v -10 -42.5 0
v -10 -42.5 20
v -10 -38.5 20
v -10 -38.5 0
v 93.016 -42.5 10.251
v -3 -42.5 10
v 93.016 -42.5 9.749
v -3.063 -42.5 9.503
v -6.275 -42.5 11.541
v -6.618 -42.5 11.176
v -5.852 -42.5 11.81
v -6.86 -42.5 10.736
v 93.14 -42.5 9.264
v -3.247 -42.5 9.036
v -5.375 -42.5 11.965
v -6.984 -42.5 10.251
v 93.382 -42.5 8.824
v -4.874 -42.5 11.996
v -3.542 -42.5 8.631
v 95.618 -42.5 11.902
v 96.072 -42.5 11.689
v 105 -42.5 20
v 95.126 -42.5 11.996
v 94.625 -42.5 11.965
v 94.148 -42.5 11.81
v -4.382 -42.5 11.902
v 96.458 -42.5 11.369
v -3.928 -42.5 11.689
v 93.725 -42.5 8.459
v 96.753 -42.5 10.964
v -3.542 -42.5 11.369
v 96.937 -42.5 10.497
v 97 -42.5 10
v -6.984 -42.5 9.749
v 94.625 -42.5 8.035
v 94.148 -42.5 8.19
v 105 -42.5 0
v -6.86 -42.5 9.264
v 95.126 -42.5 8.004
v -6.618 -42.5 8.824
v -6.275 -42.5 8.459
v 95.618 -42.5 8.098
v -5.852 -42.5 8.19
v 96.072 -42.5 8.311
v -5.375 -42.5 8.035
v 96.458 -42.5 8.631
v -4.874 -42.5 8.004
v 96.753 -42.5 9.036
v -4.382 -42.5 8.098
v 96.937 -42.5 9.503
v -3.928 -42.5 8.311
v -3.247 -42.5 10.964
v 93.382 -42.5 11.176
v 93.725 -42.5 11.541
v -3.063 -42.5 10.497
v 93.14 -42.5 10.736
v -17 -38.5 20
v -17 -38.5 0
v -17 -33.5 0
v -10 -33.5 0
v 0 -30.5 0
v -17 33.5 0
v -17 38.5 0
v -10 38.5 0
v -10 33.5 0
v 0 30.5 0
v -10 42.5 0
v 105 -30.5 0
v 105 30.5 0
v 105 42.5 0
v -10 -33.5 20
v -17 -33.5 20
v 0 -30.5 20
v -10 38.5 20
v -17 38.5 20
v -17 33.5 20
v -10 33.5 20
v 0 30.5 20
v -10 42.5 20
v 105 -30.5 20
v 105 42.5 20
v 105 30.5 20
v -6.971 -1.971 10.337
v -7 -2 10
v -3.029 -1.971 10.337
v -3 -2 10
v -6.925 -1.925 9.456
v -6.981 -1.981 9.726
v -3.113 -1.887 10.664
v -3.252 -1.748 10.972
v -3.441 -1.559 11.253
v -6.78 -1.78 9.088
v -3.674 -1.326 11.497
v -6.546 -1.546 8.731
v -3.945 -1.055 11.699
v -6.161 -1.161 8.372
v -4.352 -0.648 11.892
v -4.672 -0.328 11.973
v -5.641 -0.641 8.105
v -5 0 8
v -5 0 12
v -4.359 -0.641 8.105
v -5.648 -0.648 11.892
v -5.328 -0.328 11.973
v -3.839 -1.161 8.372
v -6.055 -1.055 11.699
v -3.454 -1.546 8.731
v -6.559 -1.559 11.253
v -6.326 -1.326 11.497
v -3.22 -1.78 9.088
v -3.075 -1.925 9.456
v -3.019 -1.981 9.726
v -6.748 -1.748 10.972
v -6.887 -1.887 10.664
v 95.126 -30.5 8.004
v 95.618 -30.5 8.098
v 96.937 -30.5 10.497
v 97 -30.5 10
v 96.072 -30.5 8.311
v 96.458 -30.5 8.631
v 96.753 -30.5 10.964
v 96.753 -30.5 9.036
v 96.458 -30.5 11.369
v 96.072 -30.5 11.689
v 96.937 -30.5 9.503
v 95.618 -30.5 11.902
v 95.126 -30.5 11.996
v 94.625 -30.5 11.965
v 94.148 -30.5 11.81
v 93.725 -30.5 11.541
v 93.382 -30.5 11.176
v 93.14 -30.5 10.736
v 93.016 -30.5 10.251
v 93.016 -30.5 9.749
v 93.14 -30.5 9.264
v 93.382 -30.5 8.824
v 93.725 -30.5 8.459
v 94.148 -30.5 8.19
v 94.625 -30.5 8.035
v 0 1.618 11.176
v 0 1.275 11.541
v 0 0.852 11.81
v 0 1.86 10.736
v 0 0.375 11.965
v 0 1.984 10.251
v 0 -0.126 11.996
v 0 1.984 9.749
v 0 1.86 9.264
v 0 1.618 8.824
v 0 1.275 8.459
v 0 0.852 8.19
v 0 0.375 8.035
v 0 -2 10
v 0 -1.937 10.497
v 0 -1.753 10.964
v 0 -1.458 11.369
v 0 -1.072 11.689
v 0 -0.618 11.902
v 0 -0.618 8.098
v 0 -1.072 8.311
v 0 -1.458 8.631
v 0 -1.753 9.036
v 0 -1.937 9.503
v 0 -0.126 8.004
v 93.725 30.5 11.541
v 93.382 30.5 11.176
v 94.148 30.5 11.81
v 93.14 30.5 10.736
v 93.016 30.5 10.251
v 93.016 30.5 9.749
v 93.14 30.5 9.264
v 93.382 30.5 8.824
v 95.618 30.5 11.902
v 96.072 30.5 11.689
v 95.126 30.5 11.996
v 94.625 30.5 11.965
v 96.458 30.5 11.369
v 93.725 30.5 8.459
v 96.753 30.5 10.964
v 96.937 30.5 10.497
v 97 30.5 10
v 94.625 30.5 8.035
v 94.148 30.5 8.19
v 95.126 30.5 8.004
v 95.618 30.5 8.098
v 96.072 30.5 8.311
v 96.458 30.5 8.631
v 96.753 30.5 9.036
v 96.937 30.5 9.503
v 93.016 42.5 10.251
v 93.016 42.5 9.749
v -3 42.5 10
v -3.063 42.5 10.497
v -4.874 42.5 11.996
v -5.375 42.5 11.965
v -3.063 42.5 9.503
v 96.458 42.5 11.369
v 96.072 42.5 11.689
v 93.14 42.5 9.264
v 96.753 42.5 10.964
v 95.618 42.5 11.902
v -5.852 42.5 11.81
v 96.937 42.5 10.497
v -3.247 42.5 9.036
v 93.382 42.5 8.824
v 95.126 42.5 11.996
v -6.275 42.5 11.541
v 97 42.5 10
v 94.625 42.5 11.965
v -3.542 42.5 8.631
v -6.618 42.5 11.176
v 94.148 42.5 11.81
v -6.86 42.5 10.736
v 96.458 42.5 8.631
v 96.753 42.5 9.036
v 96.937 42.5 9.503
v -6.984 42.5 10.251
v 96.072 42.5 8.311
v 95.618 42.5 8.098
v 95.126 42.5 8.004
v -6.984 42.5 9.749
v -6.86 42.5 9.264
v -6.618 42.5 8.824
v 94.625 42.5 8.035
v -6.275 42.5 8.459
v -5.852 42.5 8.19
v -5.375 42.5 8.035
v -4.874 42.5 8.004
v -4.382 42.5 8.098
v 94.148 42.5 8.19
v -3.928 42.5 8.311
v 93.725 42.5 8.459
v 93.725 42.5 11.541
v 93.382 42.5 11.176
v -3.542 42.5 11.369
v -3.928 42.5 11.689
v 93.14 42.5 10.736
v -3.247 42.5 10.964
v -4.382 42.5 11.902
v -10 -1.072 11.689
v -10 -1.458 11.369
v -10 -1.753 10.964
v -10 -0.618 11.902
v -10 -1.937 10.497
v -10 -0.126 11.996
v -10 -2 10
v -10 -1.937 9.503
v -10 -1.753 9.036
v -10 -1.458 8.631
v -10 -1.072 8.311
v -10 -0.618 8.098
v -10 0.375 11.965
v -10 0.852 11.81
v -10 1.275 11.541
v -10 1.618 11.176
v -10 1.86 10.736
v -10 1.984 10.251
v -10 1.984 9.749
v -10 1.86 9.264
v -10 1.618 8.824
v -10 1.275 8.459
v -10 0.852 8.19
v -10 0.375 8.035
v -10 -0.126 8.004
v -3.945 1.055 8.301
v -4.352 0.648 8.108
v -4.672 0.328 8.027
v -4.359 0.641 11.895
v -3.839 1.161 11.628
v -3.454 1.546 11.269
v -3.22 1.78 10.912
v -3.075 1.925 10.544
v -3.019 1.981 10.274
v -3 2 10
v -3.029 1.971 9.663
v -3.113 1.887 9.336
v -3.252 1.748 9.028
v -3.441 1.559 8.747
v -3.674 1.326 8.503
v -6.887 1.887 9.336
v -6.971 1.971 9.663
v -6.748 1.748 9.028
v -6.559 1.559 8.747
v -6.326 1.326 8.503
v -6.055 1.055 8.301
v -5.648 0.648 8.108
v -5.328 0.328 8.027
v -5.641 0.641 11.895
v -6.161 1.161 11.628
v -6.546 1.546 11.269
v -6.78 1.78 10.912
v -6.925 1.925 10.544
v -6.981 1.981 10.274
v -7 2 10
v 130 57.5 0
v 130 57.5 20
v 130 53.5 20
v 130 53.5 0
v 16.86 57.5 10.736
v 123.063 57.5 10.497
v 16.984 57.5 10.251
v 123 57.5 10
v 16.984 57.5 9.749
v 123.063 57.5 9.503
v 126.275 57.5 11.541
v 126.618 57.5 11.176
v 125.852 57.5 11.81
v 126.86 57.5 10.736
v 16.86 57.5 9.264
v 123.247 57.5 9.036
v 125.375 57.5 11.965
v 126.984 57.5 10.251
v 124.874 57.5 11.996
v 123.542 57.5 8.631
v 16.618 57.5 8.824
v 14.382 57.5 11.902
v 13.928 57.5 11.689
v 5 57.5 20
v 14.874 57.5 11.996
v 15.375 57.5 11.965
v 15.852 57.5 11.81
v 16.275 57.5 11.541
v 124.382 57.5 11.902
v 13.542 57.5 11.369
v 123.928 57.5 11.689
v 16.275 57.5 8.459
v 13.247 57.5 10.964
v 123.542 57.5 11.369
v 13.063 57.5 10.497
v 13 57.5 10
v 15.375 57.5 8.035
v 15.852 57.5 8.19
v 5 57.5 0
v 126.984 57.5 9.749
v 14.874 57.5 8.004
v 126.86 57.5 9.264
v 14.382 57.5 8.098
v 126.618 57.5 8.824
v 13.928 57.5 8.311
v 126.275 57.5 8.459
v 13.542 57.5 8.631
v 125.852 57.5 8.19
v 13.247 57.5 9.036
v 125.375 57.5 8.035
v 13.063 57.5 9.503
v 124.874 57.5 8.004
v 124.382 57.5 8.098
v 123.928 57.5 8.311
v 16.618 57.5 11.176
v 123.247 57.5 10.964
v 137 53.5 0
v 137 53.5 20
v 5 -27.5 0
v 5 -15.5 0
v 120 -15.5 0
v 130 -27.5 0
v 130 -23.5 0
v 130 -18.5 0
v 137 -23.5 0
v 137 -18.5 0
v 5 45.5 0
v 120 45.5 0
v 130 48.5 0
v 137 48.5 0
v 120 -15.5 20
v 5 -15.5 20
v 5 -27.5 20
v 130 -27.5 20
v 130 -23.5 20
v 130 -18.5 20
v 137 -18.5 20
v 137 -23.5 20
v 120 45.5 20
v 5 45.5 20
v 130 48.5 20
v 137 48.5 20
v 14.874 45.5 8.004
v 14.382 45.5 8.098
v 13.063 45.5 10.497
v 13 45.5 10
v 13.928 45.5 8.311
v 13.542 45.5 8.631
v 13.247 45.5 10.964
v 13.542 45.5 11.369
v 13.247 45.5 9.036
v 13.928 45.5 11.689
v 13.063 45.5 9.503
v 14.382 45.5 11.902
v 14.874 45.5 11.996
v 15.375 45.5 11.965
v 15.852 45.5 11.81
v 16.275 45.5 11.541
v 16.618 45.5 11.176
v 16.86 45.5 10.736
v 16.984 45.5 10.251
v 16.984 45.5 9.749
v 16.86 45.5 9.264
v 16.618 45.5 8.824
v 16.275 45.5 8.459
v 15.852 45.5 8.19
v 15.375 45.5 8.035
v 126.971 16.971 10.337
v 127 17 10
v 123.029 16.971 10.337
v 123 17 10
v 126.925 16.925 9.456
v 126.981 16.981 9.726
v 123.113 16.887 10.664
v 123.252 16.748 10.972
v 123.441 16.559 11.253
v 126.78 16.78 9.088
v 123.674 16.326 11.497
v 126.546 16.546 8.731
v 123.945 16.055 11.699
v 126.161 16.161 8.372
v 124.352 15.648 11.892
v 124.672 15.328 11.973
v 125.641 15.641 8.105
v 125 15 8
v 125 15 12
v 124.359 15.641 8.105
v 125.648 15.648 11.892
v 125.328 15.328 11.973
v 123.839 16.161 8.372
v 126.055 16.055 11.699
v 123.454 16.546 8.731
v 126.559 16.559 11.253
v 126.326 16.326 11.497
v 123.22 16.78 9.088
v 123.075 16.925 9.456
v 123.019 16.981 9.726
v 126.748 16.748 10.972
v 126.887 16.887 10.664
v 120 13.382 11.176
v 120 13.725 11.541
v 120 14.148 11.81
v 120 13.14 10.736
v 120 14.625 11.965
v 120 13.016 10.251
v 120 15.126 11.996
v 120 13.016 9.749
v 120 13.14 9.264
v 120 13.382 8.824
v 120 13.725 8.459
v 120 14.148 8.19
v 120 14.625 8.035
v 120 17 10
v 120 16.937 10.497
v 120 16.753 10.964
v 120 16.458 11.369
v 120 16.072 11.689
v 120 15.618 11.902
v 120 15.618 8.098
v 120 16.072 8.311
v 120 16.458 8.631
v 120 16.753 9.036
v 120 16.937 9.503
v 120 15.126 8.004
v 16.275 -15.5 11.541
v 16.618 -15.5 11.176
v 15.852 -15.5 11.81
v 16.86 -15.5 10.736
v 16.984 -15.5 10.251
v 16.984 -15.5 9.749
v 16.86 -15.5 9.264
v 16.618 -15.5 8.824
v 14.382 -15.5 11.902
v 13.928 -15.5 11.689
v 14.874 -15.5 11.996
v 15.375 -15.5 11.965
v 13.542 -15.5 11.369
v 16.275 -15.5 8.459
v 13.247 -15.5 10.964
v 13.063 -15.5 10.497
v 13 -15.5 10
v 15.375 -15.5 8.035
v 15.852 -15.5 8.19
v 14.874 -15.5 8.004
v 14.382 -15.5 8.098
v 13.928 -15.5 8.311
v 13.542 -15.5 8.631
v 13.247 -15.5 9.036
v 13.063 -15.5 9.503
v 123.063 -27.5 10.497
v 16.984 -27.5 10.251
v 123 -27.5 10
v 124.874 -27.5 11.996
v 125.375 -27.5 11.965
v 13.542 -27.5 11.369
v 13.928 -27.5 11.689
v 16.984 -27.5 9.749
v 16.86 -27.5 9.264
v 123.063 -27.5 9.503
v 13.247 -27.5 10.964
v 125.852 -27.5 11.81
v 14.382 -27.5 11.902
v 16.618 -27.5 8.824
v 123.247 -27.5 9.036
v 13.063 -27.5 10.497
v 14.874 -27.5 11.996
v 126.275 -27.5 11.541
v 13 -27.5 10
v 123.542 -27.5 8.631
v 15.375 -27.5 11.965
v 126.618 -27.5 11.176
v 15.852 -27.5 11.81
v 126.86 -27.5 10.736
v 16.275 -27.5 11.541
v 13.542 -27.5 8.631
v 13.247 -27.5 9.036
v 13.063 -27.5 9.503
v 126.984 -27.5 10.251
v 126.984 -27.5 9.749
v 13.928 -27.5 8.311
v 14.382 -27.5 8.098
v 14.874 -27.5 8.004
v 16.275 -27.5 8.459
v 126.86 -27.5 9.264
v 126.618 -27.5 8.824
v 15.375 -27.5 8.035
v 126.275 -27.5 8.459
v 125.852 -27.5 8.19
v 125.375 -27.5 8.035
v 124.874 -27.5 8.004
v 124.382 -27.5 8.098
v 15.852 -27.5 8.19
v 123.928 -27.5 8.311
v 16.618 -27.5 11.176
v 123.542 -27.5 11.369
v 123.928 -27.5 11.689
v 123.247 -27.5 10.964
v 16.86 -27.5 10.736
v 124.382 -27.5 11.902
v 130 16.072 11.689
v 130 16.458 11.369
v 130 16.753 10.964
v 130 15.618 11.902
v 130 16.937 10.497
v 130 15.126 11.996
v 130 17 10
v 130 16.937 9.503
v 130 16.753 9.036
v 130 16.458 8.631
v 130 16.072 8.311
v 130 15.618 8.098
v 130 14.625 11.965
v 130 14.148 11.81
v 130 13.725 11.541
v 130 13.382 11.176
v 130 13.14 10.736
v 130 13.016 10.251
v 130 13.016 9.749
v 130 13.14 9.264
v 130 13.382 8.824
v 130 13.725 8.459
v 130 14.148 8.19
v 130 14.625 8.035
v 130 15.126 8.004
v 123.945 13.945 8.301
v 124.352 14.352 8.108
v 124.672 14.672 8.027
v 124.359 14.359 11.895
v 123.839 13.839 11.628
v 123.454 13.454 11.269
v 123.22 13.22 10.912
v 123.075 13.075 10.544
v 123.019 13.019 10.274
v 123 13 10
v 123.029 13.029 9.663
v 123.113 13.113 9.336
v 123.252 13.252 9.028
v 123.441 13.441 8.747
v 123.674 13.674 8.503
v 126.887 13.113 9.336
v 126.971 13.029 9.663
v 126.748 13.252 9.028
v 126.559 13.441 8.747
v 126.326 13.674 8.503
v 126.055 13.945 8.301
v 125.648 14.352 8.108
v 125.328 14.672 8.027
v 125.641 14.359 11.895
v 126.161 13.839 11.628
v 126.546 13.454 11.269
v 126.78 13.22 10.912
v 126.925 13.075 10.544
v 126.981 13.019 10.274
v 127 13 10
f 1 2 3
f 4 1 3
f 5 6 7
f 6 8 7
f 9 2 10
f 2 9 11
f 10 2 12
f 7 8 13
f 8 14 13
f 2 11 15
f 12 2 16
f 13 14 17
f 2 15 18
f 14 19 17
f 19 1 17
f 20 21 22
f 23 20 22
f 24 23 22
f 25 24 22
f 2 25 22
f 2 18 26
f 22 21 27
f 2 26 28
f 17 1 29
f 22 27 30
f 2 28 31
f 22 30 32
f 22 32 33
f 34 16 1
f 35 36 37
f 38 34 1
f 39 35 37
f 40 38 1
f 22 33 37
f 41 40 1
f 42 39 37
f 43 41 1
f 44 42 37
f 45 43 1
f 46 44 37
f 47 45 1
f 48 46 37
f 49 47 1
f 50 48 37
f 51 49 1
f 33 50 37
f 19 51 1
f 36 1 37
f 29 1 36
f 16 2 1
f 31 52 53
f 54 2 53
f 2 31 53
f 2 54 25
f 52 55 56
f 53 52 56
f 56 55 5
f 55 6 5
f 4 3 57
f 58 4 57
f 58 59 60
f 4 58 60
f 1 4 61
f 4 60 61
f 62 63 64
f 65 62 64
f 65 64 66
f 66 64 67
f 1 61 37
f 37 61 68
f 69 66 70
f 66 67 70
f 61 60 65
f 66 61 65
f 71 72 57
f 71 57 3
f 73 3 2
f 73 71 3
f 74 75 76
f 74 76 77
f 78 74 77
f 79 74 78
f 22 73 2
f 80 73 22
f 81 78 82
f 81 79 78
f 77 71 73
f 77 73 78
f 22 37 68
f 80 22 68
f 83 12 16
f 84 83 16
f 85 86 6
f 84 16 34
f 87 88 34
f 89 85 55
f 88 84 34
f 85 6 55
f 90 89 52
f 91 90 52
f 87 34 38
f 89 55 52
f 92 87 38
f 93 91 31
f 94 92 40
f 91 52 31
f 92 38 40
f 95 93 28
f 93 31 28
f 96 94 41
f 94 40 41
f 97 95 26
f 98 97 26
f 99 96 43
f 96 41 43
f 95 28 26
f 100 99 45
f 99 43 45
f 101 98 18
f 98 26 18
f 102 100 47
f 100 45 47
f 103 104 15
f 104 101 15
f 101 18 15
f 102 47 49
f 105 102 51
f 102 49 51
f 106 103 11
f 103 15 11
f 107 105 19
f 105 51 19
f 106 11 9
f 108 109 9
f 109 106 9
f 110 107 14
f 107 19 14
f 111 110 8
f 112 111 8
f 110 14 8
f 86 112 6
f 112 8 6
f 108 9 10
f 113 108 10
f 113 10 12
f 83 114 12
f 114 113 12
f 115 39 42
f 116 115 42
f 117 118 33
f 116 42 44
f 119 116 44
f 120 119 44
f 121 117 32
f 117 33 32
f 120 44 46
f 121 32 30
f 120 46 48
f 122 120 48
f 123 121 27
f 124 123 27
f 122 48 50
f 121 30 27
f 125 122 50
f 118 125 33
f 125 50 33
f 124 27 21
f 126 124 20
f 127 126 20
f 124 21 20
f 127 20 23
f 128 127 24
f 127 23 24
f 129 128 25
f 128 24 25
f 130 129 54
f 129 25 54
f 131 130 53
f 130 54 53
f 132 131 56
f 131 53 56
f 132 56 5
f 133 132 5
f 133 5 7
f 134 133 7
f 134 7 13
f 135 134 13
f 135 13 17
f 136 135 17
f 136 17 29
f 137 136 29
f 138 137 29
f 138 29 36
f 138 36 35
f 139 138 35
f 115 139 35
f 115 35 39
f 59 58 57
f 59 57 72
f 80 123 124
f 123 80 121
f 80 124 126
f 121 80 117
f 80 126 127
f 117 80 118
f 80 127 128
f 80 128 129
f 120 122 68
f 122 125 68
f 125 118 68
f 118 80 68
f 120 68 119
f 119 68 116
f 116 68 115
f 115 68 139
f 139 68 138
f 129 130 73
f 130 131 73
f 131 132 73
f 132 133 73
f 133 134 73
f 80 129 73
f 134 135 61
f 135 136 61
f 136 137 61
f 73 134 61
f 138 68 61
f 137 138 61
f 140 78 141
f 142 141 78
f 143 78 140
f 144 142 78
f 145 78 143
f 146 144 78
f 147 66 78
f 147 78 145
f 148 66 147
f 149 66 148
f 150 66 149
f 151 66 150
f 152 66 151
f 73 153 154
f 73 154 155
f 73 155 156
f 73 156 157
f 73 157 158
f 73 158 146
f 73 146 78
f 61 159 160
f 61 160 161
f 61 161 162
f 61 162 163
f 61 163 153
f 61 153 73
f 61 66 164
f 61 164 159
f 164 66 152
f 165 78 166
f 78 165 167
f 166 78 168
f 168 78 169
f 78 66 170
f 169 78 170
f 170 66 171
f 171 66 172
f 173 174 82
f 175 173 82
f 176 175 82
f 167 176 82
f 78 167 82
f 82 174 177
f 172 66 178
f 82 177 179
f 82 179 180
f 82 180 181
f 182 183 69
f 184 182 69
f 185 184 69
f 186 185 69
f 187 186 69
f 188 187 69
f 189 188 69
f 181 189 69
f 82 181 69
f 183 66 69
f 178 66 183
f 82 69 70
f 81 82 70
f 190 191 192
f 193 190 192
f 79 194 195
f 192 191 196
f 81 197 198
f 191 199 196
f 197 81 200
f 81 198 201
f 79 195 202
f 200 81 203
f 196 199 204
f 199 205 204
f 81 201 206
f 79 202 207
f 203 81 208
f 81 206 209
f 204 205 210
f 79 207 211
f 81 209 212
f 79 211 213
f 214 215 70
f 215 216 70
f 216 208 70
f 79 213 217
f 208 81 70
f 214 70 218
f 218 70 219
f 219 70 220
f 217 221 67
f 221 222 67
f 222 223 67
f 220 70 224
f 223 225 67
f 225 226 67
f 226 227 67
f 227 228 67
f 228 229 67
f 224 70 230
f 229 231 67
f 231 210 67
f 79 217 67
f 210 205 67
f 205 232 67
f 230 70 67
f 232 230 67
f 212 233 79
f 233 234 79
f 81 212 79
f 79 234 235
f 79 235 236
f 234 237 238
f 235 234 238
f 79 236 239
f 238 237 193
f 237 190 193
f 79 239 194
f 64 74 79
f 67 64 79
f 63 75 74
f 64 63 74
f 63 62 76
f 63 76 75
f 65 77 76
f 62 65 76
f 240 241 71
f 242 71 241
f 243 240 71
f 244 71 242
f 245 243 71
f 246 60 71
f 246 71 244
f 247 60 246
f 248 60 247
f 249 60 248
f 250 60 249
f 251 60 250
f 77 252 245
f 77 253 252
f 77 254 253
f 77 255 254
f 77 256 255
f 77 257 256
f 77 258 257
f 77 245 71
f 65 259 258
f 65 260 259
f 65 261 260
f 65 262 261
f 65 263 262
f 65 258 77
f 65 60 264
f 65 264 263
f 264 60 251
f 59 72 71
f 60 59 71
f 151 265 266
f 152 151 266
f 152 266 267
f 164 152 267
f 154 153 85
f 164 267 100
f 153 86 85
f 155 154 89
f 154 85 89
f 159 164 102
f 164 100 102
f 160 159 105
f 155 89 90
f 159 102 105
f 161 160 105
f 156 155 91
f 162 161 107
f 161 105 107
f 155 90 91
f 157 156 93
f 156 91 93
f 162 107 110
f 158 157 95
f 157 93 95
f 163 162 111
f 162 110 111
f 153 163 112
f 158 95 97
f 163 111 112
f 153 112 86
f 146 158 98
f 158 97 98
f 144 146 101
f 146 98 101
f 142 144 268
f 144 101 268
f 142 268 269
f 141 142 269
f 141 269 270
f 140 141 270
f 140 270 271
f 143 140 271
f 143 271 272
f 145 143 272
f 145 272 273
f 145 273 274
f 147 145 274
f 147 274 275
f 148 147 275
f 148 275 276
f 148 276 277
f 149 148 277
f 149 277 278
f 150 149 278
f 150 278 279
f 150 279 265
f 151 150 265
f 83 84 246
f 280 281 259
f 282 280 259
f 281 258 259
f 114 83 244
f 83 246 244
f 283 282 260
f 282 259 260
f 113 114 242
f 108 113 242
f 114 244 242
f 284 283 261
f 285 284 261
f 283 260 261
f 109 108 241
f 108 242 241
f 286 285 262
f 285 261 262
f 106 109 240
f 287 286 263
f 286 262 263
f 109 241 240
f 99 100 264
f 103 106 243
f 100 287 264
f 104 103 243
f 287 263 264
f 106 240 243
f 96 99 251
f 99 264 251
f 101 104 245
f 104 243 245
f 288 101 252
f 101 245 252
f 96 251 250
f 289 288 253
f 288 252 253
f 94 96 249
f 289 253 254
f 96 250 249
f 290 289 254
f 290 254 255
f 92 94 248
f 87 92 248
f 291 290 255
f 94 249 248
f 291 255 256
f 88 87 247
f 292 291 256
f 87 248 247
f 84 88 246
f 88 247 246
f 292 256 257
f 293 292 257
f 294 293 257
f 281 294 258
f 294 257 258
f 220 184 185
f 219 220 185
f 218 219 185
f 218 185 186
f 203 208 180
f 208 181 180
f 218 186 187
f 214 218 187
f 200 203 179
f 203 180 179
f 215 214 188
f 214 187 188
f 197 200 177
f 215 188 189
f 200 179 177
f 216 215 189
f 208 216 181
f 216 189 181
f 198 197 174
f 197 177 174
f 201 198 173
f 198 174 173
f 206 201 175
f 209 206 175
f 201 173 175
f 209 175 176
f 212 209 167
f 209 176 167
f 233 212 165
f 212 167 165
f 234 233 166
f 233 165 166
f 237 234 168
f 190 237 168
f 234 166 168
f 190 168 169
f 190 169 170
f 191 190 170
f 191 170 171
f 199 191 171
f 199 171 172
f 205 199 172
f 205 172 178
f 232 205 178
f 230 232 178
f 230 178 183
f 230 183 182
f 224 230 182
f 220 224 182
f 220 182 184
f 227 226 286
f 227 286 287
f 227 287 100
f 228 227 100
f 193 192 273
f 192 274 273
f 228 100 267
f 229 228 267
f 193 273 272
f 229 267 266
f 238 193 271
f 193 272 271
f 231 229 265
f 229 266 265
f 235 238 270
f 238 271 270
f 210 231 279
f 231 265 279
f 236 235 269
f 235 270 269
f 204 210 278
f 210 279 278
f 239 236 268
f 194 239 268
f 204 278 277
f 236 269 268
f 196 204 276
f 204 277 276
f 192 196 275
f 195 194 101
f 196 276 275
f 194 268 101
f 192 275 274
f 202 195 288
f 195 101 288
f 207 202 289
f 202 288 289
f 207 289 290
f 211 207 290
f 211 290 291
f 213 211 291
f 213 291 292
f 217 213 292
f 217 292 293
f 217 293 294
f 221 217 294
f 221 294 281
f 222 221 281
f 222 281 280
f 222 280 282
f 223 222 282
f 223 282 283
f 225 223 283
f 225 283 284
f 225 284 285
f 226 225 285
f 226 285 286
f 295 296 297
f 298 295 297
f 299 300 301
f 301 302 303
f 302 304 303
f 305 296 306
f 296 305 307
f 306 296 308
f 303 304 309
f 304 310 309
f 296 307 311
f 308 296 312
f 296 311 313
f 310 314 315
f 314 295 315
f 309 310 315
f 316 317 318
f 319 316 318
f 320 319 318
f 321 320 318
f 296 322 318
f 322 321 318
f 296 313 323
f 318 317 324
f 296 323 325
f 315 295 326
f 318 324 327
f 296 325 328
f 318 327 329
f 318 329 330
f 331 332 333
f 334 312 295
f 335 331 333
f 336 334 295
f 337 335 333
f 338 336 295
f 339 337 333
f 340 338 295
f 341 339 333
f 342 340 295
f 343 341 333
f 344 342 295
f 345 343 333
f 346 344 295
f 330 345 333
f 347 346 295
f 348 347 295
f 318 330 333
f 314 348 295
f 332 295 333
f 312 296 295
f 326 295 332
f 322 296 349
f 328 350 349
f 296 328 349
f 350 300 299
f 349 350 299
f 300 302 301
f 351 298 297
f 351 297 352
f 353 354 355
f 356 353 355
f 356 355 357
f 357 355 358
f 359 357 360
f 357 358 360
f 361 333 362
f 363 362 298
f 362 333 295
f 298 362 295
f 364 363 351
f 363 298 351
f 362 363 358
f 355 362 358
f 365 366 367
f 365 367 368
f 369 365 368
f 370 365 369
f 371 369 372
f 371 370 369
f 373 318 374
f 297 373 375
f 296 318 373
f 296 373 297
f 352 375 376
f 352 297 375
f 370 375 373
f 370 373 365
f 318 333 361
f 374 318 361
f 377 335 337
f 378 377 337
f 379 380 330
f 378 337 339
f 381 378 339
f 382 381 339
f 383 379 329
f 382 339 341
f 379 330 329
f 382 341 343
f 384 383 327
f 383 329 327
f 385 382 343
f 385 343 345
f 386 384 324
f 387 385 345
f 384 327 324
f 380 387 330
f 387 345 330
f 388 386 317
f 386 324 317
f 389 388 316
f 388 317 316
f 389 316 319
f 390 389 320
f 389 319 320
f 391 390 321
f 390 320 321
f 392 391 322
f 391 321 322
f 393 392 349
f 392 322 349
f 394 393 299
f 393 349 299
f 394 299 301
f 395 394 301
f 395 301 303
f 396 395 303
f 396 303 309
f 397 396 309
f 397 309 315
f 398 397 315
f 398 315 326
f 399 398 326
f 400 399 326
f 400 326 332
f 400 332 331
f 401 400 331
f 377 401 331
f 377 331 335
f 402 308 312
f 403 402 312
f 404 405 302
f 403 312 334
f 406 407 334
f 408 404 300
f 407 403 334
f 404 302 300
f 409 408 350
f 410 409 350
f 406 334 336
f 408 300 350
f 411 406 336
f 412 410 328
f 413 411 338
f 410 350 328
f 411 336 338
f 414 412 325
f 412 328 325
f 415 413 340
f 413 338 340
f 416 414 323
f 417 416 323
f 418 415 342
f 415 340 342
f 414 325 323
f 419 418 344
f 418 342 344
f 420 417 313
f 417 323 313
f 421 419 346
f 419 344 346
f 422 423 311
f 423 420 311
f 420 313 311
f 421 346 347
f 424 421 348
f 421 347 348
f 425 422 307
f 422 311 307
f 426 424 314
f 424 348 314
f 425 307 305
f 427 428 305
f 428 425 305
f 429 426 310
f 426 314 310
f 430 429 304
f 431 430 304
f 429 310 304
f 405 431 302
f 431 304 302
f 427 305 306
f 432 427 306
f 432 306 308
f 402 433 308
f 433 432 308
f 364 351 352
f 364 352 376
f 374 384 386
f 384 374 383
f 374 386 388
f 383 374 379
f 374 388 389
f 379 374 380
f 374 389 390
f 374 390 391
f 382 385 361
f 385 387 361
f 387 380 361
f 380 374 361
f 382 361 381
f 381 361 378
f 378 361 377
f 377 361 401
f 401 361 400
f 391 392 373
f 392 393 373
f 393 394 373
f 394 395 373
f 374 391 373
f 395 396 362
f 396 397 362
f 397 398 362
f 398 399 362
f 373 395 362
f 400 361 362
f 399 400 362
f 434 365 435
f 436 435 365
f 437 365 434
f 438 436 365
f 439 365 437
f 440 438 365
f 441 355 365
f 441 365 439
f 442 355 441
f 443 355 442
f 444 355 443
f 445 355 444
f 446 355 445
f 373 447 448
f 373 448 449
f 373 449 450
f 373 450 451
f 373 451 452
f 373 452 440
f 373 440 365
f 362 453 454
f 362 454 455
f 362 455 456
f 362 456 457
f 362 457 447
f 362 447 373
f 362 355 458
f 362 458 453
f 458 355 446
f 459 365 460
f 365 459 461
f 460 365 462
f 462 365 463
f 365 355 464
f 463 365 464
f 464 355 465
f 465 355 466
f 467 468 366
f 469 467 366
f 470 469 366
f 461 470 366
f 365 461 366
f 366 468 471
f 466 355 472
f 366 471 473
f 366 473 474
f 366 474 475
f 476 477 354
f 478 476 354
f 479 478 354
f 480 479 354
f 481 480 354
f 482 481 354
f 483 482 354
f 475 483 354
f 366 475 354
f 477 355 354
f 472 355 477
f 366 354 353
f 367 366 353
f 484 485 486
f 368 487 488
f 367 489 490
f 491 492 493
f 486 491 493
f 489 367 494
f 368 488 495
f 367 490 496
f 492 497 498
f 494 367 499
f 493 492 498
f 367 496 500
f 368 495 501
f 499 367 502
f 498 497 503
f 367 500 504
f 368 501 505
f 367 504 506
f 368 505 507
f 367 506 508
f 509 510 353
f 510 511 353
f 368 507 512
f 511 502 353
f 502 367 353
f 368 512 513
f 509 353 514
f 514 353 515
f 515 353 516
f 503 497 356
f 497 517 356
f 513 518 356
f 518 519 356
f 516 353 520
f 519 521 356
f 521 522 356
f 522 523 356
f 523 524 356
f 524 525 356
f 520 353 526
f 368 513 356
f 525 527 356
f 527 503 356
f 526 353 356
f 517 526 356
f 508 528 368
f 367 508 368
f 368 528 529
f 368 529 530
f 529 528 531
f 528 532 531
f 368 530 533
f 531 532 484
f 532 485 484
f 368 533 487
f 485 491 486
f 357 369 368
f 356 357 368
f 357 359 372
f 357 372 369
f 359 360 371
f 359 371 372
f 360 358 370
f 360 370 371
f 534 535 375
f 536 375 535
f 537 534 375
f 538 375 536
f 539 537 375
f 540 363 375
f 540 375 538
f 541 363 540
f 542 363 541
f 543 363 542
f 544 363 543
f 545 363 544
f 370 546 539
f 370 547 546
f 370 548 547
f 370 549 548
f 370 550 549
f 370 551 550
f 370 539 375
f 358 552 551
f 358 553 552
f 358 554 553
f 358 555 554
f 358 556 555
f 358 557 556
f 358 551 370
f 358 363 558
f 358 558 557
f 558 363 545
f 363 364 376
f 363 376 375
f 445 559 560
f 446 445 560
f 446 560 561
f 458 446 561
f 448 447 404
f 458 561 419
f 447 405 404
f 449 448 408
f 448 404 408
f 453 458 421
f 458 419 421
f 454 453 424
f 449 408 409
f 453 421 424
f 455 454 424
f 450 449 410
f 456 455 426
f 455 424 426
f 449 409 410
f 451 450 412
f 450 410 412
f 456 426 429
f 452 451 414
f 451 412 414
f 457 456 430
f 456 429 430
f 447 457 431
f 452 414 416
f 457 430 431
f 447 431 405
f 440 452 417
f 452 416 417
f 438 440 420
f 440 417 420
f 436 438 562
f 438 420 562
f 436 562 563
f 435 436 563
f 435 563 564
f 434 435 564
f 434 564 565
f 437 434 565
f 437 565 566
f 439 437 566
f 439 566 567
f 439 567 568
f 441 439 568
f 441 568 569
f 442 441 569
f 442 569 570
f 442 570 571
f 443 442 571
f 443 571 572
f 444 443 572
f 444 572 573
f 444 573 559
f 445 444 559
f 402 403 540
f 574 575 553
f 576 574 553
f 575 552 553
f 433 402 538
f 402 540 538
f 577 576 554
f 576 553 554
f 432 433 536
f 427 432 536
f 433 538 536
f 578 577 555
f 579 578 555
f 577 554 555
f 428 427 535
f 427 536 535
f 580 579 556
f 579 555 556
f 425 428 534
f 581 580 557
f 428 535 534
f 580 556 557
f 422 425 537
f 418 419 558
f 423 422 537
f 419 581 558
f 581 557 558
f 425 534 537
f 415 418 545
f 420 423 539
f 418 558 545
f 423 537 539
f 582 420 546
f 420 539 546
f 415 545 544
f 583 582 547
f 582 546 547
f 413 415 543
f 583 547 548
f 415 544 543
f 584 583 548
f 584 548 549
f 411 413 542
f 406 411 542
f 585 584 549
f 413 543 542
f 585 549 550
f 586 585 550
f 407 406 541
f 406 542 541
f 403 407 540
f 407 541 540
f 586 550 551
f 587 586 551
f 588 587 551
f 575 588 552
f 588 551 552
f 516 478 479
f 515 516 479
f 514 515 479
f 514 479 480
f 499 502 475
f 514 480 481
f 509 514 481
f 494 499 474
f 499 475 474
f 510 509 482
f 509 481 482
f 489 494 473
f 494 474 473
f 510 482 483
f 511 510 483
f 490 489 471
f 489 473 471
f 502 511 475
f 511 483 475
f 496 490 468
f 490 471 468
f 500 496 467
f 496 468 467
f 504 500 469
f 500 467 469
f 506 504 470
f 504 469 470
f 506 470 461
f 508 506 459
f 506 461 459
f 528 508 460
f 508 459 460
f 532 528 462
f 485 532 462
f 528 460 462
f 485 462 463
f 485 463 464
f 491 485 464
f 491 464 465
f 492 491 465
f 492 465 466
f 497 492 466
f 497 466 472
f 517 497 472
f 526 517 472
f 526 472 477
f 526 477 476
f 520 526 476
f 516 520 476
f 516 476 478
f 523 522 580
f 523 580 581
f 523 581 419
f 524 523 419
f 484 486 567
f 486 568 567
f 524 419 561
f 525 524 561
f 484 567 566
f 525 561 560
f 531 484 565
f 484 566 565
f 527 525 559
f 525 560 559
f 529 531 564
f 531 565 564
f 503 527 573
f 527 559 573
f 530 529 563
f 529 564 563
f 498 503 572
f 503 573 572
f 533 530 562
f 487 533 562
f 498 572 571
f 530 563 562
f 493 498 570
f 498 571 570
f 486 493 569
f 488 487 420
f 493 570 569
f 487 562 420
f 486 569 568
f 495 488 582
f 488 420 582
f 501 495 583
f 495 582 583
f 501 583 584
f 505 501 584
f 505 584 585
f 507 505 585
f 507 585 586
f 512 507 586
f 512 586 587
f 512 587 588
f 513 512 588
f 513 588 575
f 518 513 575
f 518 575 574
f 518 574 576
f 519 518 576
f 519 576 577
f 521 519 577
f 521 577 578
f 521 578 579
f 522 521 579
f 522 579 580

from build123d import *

# Parameters (mm, degrees)
PAD_DEPTH       = 20
SKETCH004_R     = 2
POCKET002_DEPTH = 115.001
SKETCH005_R     = 2
POCKET003_DEPTH = 85.001
PAD001_DEPTH    = 20
SKETCH007_R     = 2
POCKET004_DEPTH = 125.001
SKETCH008_R     = 2
POCKET005_DEPTH = 85.001


with BuildPart() as soporte_agujero_superior_lateral:
    # Sketch → Pad (new body)
    with BuildSketch(Plane.XY):
        Polygon((-10, -42.5), (105, -42.5), (105, -30.5), (0, -30.5), (0, 30.5), (105, 30.5), (105, 42.5), (-10, 42.5), (-10, 38.5), (-17, 38.5), (-17, 33.5), (-10, 33.5), (-10, -33.5), (-17, -33.5), (-17, -38.5), (-10, -38.5), align=None)
    extrude(amount=PAD_DEPTH)

    # Sketch004 → Pocket002 (cut, through all)
    with BuildSketch(Plane(origin=(-10, 0, 0), x_dir=(0, -1, 0), z_dir=(-1, 0, 0))):
        with Locations((0, 10)):
            Circle(SKETCH004_R)
    extrude(amount=-POCKET002_DEPTH, mode=Mode.SUBTRACT)

    # Sketch005 → Pocket003 (cut, through all)
    with BuildSketch(Plane.XZ.offset(42.5)):
        with Locations((-5, 10)):
            Circle(SKETCH005_R)
        with Locations((95, 10)):
            Circle(SKETCH005_R)
    extrude(amount=-POCKET003_DEPTH, mode=Mode.SUBTRACT)


with BuildPart() as soporte_agujero_superior_lateral001:
    # Sketch006 → Pad001 (new body)
    with BuildSketch(Plane(origin=(120, 15, 0), x_dir=(-1, 0, 0), z_dir=(0, 0, 1))):
        Polygon((-10, -42.5), (115, -42.5), (115, -30.5), (0, -30.5), (0, 30.5), (115, 30.5), (115, 42.5), (-10, 42.5), (-10, 38.5), (-17, 38.5), (-17, 33.5), (-10, 33.5), (-10, -33.5), (-17, -33.5), (-17, -38.5), (-10, -38.5), align=None)
    extrude(amount=PAD001_DEPTH)

    # Sketch007 → Pocket004 (cut, through all)
    with BuildSketch(Plane(origin=(130, 15, 0), x_dir=(0, 1, 0), z_dir=(1, 0, 0))):
        with Locations((0, 10)):
            Circle(SKETCH007_R)
    extrude(amount=-POCKET004_DEPTH, mode=Mode.SUBTRACT)

    # Sketch008 → Pocket005 (cut, through all)
    with BuildSketch(Plane(origin=(120, 57.5, 0), x_dir=(-1, 0, 0), z_dir=(0, 1, 0))):
        with Locations((-5, 10)):
            Circle(SKETCH008_R)
        with Locations((105, 10)):
            Circle(SKETCH008_R)
    extrude(amount=-POCKET005_DEPTH, mode=Mode.SUBTRACT)


solid = Compound([soporte_agujero_superior_lateral.part, soporte_agujero_superior_lateral001.part])
